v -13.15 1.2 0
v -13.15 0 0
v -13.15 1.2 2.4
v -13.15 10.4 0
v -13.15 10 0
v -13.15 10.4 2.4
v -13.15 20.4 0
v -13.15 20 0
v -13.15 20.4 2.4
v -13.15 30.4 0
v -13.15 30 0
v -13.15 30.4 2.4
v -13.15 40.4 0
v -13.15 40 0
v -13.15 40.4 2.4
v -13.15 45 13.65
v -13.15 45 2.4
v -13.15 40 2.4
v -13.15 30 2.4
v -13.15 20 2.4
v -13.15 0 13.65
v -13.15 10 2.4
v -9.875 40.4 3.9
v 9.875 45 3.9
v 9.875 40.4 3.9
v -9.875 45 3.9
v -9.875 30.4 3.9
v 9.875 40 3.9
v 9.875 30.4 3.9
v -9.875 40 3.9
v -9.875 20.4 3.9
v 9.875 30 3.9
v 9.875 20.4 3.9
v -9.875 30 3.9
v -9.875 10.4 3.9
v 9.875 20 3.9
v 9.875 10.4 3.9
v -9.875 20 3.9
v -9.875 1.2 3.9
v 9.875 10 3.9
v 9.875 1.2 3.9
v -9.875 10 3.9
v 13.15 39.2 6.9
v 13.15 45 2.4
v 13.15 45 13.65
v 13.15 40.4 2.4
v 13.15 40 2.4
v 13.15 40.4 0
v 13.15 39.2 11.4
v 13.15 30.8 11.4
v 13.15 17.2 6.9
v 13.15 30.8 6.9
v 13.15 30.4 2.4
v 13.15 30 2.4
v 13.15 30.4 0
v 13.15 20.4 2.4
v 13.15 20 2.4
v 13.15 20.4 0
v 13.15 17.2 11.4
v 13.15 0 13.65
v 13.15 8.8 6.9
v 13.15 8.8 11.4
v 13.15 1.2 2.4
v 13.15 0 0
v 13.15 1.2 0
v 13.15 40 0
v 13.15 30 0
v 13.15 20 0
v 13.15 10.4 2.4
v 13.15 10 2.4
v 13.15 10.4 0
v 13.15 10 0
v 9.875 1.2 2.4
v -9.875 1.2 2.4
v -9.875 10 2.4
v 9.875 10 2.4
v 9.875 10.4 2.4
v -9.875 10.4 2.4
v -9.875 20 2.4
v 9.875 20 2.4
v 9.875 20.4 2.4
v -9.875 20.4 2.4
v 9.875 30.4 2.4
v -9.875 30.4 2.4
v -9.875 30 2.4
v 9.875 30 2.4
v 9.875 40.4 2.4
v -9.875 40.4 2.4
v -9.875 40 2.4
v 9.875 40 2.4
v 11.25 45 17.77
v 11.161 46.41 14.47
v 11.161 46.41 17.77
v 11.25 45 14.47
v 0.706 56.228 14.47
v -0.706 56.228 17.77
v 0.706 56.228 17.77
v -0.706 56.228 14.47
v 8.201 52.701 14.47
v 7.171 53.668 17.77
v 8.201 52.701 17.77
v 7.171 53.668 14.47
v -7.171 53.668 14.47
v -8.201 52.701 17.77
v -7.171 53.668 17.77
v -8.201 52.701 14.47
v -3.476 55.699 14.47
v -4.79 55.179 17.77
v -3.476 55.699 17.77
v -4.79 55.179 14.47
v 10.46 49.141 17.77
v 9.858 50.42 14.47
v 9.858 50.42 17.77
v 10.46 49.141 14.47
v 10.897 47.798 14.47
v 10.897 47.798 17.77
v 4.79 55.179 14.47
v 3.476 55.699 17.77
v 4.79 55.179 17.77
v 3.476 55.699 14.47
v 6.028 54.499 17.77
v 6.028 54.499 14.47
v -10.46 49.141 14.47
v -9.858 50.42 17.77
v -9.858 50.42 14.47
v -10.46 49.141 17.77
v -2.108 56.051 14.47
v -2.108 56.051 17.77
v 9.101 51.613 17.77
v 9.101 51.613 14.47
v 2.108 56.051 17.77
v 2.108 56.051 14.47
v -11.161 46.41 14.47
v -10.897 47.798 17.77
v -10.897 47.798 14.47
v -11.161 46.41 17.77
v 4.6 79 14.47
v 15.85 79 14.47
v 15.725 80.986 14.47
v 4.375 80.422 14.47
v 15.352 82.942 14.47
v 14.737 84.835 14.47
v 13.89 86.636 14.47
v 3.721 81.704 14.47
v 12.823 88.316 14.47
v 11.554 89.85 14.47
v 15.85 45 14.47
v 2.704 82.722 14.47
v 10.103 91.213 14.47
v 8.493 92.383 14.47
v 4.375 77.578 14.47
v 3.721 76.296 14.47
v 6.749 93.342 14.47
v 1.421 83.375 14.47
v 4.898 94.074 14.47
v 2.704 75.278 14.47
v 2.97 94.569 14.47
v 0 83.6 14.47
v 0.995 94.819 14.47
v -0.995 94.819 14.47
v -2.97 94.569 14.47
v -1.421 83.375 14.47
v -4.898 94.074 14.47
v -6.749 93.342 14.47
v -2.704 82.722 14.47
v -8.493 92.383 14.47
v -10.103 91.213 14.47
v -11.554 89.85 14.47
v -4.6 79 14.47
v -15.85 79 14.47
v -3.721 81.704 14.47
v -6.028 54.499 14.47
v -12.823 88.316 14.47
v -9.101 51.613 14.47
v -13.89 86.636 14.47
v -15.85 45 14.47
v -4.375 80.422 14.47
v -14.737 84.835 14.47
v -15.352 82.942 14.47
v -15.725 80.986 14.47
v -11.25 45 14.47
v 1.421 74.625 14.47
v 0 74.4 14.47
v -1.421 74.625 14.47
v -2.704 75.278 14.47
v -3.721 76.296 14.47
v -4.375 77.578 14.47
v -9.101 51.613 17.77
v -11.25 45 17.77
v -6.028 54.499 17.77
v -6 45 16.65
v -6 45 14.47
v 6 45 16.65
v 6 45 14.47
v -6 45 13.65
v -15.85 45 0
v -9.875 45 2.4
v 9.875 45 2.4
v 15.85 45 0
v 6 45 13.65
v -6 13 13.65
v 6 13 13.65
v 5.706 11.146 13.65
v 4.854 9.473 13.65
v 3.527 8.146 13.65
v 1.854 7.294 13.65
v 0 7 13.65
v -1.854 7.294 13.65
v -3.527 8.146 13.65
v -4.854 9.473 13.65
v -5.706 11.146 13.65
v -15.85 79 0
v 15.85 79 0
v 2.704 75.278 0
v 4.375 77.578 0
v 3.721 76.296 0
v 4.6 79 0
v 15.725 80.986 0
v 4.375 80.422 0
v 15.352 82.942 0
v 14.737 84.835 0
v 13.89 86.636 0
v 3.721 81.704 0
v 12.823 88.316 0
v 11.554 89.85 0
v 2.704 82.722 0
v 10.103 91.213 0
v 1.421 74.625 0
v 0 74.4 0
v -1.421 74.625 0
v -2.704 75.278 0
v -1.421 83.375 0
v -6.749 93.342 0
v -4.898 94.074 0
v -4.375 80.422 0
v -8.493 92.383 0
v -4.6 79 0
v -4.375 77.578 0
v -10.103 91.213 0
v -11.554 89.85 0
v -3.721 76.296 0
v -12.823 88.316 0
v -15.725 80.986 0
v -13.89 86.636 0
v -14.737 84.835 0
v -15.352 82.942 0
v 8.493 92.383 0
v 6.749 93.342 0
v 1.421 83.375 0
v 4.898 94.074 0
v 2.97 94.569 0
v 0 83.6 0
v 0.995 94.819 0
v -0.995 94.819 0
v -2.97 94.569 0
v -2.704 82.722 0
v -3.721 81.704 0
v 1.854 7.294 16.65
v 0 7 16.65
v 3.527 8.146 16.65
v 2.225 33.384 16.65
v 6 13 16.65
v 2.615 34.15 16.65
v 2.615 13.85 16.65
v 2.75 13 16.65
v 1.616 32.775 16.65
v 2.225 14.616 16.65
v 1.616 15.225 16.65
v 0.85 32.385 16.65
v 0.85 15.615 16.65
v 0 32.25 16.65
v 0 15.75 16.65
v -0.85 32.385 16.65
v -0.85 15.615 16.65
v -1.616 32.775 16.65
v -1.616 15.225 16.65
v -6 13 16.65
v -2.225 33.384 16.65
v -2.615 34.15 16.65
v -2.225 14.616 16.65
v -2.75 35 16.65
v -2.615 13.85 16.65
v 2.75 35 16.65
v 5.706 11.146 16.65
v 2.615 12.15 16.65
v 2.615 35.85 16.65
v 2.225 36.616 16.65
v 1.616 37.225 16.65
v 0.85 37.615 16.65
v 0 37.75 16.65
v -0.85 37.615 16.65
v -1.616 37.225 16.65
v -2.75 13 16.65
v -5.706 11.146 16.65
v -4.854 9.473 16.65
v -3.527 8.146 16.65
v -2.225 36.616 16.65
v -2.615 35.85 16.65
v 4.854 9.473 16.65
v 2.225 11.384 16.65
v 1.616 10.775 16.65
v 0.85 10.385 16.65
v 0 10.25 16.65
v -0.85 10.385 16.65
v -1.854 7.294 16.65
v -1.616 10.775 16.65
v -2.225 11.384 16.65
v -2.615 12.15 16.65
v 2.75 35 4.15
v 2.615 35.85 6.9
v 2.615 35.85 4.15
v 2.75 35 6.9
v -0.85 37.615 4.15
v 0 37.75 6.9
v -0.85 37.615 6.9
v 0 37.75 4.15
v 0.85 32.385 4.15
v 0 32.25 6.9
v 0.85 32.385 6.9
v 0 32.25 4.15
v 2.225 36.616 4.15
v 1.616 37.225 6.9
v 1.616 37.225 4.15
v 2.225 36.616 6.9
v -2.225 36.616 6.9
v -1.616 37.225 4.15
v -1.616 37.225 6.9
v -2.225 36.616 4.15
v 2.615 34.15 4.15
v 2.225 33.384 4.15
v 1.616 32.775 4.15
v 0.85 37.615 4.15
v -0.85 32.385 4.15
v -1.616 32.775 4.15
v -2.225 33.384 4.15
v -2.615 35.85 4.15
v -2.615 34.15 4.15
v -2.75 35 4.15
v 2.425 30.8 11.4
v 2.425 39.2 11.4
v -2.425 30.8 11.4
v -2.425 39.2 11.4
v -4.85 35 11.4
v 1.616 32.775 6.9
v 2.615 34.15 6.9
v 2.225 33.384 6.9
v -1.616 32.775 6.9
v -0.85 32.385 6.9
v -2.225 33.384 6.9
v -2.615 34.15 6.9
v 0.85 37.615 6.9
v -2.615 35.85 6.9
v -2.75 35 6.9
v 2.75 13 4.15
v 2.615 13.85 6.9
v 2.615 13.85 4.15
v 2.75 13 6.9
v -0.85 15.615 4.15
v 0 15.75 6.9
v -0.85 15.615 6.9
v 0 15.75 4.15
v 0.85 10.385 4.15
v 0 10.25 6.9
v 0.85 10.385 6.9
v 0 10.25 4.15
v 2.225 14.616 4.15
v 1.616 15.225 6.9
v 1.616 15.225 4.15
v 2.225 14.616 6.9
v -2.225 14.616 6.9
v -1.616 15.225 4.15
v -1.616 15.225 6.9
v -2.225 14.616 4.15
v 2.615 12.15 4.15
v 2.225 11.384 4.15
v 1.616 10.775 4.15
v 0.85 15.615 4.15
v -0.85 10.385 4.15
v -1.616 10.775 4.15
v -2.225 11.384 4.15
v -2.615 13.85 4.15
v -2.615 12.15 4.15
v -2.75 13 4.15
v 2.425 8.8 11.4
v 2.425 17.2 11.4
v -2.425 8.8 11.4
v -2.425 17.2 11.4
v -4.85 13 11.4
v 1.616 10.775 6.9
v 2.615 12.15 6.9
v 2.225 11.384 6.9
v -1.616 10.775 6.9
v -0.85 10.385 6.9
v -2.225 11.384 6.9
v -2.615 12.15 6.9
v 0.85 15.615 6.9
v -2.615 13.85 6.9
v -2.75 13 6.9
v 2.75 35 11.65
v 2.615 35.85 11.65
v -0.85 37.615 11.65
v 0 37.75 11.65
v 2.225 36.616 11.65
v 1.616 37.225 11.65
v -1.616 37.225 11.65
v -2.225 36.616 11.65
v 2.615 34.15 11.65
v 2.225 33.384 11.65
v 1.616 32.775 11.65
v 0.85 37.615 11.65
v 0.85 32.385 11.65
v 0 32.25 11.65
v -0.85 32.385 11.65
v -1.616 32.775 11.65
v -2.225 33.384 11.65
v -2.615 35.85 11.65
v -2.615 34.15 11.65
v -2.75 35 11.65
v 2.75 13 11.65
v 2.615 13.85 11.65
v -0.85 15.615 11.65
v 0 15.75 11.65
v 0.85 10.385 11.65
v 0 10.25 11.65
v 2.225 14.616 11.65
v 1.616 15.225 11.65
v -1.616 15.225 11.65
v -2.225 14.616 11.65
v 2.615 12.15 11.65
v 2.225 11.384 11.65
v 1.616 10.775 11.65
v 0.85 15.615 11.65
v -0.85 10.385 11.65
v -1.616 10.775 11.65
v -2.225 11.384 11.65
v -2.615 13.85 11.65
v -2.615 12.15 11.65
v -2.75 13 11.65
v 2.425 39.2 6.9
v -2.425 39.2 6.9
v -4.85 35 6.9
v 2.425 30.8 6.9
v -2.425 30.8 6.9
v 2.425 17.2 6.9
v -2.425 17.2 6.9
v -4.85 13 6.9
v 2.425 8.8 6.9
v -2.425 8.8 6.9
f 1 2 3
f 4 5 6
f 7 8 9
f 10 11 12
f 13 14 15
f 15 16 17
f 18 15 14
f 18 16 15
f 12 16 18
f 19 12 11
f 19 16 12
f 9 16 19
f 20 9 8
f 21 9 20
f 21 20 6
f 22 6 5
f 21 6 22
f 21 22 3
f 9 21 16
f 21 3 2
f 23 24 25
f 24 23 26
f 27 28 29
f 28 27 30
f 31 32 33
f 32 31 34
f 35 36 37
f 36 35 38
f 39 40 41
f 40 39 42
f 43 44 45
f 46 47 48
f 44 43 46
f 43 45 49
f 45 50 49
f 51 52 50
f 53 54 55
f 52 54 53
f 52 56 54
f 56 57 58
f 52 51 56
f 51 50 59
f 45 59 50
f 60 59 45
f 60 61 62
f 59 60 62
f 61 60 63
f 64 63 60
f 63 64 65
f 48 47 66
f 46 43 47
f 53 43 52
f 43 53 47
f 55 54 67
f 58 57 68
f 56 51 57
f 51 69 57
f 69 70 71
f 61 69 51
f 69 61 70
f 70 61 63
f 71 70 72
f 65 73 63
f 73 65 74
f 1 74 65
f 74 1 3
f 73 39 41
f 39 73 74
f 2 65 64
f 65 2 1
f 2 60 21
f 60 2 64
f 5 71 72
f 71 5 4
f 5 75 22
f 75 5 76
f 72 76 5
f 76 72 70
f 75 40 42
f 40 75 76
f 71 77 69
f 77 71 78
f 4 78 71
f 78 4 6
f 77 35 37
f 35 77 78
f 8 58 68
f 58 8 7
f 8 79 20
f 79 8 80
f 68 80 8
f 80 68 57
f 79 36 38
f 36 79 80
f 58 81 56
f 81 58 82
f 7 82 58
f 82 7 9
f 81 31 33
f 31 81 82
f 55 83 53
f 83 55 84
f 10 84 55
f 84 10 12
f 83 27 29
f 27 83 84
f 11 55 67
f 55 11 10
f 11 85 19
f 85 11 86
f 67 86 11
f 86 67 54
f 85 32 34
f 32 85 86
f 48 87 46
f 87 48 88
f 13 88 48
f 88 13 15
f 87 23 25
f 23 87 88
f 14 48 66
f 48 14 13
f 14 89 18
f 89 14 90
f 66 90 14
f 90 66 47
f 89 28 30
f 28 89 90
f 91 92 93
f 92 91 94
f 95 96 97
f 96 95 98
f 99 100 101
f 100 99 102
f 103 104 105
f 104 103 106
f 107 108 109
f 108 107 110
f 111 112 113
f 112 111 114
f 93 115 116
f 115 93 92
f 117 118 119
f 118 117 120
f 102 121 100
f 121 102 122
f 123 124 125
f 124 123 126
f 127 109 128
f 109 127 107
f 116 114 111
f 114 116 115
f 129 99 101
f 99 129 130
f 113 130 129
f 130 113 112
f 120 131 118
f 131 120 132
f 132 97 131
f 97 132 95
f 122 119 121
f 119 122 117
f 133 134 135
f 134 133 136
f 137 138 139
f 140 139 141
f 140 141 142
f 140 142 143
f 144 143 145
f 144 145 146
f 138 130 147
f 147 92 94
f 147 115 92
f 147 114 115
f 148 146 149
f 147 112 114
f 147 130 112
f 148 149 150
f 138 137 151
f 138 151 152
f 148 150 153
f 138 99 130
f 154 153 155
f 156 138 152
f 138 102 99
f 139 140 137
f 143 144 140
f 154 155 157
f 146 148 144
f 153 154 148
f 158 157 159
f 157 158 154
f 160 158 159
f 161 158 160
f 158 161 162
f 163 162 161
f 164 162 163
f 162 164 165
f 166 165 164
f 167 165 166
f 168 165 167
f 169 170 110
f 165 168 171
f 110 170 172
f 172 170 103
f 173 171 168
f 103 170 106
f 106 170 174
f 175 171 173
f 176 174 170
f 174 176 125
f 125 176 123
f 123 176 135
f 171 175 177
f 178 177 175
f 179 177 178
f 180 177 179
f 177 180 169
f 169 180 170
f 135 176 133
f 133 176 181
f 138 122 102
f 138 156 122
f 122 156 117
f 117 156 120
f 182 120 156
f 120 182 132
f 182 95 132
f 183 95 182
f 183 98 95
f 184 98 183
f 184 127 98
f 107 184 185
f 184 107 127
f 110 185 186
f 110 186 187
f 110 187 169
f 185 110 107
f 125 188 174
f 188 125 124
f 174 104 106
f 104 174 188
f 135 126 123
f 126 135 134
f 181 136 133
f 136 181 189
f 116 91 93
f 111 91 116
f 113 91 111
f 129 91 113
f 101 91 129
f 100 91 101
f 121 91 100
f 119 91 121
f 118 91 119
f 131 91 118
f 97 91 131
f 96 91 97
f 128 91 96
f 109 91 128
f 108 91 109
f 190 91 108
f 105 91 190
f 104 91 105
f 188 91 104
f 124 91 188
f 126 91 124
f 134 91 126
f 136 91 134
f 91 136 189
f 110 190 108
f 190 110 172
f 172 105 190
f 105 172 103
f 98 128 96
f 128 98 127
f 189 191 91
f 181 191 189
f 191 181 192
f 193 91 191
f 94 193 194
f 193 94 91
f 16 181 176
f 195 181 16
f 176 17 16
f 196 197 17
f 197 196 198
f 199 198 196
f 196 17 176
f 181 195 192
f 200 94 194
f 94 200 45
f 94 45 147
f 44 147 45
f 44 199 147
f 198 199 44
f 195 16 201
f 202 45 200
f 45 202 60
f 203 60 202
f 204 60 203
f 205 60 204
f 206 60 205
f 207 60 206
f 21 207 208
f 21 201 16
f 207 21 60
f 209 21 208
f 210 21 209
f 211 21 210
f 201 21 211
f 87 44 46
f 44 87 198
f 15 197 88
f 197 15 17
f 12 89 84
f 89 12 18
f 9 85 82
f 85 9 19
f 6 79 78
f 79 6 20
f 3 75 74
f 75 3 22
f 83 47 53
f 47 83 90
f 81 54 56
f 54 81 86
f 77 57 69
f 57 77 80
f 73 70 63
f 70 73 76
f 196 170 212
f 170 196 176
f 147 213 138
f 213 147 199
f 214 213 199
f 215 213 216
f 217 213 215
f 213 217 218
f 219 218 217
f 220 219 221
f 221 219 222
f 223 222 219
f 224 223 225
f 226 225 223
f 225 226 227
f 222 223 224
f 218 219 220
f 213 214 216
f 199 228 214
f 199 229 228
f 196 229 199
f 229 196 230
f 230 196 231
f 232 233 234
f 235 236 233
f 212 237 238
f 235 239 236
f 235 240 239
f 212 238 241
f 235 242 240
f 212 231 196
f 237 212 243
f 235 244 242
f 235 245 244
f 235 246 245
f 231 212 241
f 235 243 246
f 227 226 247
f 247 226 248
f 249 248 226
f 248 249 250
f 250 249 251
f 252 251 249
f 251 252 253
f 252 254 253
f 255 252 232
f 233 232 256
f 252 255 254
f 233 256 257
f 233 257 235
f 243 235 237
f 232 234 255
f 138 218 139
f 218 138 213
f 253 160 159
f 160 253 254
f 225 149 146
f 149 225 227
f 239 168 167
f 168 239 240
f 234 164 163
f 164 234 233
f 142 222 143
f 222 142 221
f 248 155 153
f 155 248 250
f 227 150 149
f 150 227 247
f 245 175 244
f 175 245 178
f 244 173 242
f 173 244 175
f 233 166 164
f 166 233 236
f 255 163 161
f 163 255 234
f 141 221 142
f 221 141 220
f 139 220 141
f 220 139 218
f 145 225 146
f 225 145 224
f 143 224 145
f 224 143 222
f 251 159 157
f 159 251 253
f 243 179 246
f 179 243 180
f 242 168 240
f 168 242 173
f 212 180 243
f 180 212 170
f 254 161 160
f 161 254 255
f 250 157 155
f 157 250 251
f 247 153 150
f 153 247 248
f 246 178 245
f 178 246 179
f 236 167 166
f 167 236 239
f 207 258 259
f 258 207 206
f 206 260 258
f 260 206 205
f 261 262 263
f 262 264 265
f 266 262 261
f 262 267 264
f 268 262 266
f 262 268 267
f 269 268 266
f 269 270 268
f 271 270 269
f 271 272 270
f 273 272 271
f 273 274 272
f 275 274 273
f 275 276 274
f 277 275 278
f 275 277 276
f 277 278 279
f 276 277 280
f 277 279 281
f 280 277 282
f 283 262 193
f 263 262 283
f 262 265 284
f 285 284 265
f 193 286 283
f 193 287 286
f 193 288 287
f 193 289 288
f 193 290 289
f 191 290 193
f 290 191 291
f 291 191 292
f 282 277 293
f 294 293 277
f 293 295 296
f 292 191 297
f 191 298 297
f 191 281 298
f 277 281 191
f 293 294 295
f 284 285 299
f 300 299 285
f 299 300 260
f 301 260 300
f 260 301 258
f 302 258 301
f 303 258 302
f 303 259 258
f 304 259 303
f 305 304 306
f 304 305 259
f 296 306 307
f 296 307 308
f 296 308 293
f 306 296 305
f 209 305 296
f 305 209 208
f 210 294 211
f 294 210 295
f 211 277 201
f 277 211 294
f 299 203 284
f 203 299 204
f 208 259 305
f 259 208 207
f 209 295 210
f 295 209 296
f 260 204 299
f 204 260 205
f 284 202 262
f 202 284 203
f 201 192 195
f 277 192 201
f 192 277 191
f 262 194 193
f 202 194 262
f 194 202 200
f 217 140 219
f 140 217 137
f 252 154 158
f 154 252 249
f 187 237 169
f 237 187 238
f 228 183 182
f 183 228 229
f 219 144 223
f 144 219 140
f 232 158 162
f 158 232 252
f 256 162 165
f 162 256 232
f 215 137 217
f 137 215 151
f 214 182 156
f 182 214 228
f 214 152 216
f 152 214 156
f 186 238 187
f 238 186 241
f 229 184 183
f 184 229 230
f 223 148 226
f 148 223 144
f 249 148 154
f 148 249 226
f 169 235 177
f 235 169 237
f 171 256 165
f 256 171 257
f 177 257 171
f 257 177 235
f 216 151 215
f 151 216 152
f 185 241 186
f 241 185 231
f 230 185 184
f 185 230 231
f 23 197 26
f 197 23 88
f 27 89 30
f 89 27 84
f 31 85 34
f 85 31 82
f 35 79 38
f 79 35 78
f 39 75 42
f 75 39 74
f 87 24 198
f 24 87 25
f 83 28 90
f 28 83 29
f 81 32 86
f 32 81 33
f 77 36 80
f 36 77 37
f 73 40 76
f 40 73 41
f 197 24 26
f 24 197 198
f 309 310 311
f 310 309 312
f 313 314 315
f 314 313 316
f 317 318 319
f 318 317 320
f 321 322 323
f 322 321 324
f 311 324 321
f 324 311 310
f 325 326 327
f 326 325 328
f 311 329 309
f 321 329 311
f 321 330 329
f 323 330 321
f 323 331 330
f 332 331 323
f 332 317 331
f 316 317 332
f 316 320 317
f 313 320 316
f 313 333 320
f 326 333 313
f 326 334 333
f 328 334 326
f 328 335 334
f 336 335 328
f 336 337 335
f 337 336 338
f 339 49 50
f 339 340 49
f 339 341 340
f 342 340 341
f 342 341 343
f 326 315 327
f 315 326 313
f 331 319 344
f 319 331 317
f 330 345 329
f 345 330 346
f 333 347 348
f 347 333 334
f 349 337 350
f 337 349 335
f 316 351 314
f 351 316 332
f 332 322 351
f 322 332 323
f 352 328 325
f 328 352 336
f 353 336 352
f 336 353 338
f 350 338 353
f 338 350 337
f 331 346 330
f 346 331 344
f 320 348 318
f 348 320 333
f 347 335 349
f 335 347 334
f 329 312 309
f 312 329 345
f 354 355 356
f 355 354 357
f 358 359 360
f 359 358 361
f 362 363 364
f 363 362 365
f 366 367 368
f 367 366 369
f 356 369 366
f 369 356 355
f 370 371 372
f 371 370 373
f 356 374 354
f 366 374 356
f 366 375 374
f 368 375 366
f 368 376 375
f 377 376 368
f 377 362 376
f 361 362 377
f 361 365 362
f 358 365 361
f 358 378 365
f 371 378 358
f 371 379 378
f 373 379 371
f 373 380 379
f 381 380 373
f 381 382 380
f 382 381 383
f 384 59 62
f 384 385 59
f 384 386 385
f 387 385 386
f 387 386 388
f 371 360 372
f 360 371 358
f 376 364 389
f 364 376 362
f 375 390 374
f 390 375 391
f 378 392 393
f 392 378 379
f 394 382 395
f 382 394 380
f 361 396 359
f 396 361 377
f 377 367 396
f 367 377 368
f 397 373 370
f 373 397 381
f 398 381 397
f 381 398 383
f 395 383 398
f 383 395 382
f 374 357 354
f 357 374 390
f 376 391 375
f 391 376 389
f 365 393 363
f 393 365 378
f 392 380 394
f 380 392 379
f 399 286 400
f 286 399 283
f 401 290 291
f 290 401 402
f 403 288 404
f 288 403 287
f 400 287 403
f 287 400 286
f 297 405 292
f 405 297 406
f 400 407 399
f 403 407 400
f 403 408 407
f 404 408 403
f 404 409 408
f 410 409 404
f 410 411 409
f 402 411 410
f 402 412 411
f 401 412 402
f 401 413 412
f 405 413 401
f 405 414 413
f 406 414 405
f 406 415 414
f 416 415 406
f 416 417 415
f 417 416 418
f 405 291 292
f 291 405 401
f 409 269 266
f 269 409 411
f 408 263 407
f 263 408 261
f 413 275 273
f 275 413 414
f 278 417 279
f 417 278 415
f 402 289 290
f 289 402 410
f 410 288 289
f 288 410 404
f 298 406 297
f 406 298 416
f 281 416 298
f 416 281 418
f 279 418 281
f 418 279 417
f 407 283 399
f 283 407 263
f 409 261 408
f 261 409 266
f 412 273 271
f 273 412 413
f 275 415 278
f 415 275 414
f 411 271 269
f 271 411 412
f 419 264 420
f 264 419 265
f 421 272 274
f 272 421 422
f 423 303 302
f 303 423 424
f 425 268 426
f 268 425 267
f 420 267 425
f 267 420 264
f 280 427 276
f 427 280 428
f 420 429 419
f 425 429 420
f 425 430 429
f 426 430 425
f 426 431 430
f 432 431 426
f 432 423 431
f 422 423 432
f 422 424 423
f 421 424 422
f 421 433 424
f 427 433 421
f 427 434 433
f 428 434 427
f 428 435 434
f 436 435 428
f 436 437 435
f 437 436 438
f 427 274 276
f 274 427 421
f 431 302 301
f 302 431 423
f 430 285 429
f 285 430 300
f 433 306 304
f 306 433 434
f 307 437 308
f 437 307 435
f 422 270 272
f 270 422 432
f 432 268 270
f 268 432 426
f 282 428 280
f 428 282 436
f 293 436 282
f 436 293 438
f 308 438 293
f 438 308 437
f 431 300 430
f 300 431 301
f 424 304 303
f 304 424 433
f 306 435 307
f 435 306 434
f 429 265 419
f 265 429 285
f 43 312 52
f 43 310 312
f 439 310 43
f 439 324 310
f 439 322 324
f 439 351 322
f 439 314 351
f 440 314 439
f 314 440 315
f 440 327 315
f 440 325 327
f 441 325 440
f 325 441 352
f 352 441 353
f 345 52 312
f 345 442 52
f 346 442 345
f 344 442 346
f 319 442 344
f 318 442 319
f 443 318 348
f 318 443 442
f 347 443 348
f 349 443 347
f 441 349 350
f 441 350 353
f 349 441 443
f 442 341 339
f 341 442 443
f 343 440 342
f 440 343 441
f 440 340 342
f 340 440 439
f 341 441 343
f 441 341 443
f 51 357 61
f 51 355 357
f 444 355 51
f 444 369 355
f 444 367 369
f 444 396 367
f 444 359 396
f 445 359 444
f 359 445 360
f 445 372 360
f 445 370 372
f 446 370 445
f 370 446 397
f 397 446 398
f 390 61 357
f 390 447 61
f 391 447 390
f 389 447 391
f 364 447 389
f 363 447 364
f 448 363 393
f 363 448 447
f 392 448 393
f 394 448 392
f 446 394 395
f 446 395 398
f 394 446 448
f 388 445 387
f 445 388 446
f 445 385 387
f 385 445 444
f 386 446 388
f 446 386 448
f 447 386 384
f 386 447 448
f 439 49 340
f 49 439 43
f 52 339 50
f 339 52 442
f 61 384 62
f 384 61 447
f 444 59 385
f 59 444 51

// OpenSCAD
nut_pocket = 8.4;
nut_height = 4.5;
nut_diameter = 9.7;

screw_diameter = 5.5;

inside_width = 26.3;
inside_height = 11.25;
inside_deepth = 45;
inside_hop = 1.5;
inside_hop_width = 19.75;
inside_top_hop = 3;
inside_top_hop_width = 12;

outside_width = 31.7;
outside_height = 14.47;
outside_deepth = 34; //od přechodu po střed díry
outside_hop = 3.3;
outside_hop_width = 22.5;

inside_outside_hop = 2.4;

hole_diameter = 9.2;

screw_distance = 22;
screw_outside_distance = 10;

layer_height = 0.25;

support = true;
support_thickness = 0.4;

if(support) {
    translate([inside_width/-2, 0, 0])
    cube([inside_width, support_thickness*3, inside_outside_hop+inside_hop]);

    translate([inside_width/-2, 10, 0])
    cube([inside_width, support_thickness, inside_outside_hop+inside_hop]);

    translate([inside_width/-2, 20, 0])
    cube([inside_width, support_thickness, inside_outside_hop+inside_hop]);

    translate([inside_width/-2, 30, 0])
    cube([inside_width, support_thickness, inside_outside_hop+inside_hop]);

    translate([inside_width/-2, 40, 0])
    cube([inside_width, support_thickness, inside_outside_hop+inside_hop]);
}

difference() {
    union() {
        translate([inside_width/-2, 0, inside_outside_hop])
            cube([inside_width, inside_deepth, inside_height]);

        translate([outside_width/-2, inside_deepth, 0])
            cube([outside_width, outside_deepth, outside_height]);

        translate([0, inside_deepth+outside_deepth, 0])
            cylinder(d=outside_width, h=outside_height, $fn=50);

        translate([0, inside_deepth-screw_outside_distance-screw_distance, inside_outside_hop+inside_height])
            cylinder(d=inside_top_hop_width, h=inside_top_hop, $fn=20);

        translate([inside_top_hop_width/-2, inside_deepth-screw_distance-screw_outside_distance, inside_outside_hop+inside_height])
            cube([inside_top_hop_width, screw_distance+screw_outside_distance, inside_top_hop]);

        difference() {
            translate([0, inside_deepth, outside_height])
                cylinder(d=outside_hop_width, h=outside_hop, $fn=50);

            translate([-100, 0, 0])
                cube([200, inside_deepth, 100]);
        }
    }

    //díra pro hlavní šroub
    translate([0, inside_deepth+outside_deepth, -10])
        cylinder(d=hole_diameter, h=100, $fn=20);

    //vnitřní výkus
    translate([inside_hop_width/-2, 0, inside_outside_hop])
        cube([inside_hop_width, inside_deepth, inside_hop]);

    //díry pro šrouby
    translate([0, inside_deepth-screw_outside_distance, inside_outside_hop+inside_hop+layer_height])
        cylinder(d=screw_diameter, h=3+nut_height-layer_height, $fn=20);
    translate([0, inside_deepth-screw_outside_distance-screw_distance, inside_outside_hop+inside_hop+layer_height])
        cylinder(d=screw_diameter, h=3+nut_height-layer_height, $fn=20);
    translate([0, inside_deepth-screw_outside_distance, inside_outside_hop+inside_hop+3+nut_height+layer_height])
        cylinder(d=screw_diameter, h=50, $fn=20);
    translate([0, inside_deepth-screw_outside_distance-screw_distance, inside_outside_hop+inside_hop+3+nut_height+layer_height])
        cylinder(d=screw_diameter, h=50, $fn=20);

    //díry pro matky
    translate([0, inside_deepth-screw_outside_distance, inside_outside_hop+inside_hop+3])
        cylinder(d=nut_diameter, h=nut_height, $fn=6);
    translate([0, inside_deepth-screw_outside_distance-screw_distance, inside_outside_hop+inside_hop+3])
        cylinder(d=nut_diameter, h=nut_height, $fn=6);
    translate([0, inside_deepth-screw_outside_distance-nut_pocket/2, inside_outside_hop+inside_hop+3])
        cube([100, nut_pocket, nut_height]);
    translate([0, inside_deepth-screw_outside_distance-screw_distance-nut_pocket/2, inside_outside_hop+inside_hop+3])
        cube([100, nut_pocket, nut_height]);
}
